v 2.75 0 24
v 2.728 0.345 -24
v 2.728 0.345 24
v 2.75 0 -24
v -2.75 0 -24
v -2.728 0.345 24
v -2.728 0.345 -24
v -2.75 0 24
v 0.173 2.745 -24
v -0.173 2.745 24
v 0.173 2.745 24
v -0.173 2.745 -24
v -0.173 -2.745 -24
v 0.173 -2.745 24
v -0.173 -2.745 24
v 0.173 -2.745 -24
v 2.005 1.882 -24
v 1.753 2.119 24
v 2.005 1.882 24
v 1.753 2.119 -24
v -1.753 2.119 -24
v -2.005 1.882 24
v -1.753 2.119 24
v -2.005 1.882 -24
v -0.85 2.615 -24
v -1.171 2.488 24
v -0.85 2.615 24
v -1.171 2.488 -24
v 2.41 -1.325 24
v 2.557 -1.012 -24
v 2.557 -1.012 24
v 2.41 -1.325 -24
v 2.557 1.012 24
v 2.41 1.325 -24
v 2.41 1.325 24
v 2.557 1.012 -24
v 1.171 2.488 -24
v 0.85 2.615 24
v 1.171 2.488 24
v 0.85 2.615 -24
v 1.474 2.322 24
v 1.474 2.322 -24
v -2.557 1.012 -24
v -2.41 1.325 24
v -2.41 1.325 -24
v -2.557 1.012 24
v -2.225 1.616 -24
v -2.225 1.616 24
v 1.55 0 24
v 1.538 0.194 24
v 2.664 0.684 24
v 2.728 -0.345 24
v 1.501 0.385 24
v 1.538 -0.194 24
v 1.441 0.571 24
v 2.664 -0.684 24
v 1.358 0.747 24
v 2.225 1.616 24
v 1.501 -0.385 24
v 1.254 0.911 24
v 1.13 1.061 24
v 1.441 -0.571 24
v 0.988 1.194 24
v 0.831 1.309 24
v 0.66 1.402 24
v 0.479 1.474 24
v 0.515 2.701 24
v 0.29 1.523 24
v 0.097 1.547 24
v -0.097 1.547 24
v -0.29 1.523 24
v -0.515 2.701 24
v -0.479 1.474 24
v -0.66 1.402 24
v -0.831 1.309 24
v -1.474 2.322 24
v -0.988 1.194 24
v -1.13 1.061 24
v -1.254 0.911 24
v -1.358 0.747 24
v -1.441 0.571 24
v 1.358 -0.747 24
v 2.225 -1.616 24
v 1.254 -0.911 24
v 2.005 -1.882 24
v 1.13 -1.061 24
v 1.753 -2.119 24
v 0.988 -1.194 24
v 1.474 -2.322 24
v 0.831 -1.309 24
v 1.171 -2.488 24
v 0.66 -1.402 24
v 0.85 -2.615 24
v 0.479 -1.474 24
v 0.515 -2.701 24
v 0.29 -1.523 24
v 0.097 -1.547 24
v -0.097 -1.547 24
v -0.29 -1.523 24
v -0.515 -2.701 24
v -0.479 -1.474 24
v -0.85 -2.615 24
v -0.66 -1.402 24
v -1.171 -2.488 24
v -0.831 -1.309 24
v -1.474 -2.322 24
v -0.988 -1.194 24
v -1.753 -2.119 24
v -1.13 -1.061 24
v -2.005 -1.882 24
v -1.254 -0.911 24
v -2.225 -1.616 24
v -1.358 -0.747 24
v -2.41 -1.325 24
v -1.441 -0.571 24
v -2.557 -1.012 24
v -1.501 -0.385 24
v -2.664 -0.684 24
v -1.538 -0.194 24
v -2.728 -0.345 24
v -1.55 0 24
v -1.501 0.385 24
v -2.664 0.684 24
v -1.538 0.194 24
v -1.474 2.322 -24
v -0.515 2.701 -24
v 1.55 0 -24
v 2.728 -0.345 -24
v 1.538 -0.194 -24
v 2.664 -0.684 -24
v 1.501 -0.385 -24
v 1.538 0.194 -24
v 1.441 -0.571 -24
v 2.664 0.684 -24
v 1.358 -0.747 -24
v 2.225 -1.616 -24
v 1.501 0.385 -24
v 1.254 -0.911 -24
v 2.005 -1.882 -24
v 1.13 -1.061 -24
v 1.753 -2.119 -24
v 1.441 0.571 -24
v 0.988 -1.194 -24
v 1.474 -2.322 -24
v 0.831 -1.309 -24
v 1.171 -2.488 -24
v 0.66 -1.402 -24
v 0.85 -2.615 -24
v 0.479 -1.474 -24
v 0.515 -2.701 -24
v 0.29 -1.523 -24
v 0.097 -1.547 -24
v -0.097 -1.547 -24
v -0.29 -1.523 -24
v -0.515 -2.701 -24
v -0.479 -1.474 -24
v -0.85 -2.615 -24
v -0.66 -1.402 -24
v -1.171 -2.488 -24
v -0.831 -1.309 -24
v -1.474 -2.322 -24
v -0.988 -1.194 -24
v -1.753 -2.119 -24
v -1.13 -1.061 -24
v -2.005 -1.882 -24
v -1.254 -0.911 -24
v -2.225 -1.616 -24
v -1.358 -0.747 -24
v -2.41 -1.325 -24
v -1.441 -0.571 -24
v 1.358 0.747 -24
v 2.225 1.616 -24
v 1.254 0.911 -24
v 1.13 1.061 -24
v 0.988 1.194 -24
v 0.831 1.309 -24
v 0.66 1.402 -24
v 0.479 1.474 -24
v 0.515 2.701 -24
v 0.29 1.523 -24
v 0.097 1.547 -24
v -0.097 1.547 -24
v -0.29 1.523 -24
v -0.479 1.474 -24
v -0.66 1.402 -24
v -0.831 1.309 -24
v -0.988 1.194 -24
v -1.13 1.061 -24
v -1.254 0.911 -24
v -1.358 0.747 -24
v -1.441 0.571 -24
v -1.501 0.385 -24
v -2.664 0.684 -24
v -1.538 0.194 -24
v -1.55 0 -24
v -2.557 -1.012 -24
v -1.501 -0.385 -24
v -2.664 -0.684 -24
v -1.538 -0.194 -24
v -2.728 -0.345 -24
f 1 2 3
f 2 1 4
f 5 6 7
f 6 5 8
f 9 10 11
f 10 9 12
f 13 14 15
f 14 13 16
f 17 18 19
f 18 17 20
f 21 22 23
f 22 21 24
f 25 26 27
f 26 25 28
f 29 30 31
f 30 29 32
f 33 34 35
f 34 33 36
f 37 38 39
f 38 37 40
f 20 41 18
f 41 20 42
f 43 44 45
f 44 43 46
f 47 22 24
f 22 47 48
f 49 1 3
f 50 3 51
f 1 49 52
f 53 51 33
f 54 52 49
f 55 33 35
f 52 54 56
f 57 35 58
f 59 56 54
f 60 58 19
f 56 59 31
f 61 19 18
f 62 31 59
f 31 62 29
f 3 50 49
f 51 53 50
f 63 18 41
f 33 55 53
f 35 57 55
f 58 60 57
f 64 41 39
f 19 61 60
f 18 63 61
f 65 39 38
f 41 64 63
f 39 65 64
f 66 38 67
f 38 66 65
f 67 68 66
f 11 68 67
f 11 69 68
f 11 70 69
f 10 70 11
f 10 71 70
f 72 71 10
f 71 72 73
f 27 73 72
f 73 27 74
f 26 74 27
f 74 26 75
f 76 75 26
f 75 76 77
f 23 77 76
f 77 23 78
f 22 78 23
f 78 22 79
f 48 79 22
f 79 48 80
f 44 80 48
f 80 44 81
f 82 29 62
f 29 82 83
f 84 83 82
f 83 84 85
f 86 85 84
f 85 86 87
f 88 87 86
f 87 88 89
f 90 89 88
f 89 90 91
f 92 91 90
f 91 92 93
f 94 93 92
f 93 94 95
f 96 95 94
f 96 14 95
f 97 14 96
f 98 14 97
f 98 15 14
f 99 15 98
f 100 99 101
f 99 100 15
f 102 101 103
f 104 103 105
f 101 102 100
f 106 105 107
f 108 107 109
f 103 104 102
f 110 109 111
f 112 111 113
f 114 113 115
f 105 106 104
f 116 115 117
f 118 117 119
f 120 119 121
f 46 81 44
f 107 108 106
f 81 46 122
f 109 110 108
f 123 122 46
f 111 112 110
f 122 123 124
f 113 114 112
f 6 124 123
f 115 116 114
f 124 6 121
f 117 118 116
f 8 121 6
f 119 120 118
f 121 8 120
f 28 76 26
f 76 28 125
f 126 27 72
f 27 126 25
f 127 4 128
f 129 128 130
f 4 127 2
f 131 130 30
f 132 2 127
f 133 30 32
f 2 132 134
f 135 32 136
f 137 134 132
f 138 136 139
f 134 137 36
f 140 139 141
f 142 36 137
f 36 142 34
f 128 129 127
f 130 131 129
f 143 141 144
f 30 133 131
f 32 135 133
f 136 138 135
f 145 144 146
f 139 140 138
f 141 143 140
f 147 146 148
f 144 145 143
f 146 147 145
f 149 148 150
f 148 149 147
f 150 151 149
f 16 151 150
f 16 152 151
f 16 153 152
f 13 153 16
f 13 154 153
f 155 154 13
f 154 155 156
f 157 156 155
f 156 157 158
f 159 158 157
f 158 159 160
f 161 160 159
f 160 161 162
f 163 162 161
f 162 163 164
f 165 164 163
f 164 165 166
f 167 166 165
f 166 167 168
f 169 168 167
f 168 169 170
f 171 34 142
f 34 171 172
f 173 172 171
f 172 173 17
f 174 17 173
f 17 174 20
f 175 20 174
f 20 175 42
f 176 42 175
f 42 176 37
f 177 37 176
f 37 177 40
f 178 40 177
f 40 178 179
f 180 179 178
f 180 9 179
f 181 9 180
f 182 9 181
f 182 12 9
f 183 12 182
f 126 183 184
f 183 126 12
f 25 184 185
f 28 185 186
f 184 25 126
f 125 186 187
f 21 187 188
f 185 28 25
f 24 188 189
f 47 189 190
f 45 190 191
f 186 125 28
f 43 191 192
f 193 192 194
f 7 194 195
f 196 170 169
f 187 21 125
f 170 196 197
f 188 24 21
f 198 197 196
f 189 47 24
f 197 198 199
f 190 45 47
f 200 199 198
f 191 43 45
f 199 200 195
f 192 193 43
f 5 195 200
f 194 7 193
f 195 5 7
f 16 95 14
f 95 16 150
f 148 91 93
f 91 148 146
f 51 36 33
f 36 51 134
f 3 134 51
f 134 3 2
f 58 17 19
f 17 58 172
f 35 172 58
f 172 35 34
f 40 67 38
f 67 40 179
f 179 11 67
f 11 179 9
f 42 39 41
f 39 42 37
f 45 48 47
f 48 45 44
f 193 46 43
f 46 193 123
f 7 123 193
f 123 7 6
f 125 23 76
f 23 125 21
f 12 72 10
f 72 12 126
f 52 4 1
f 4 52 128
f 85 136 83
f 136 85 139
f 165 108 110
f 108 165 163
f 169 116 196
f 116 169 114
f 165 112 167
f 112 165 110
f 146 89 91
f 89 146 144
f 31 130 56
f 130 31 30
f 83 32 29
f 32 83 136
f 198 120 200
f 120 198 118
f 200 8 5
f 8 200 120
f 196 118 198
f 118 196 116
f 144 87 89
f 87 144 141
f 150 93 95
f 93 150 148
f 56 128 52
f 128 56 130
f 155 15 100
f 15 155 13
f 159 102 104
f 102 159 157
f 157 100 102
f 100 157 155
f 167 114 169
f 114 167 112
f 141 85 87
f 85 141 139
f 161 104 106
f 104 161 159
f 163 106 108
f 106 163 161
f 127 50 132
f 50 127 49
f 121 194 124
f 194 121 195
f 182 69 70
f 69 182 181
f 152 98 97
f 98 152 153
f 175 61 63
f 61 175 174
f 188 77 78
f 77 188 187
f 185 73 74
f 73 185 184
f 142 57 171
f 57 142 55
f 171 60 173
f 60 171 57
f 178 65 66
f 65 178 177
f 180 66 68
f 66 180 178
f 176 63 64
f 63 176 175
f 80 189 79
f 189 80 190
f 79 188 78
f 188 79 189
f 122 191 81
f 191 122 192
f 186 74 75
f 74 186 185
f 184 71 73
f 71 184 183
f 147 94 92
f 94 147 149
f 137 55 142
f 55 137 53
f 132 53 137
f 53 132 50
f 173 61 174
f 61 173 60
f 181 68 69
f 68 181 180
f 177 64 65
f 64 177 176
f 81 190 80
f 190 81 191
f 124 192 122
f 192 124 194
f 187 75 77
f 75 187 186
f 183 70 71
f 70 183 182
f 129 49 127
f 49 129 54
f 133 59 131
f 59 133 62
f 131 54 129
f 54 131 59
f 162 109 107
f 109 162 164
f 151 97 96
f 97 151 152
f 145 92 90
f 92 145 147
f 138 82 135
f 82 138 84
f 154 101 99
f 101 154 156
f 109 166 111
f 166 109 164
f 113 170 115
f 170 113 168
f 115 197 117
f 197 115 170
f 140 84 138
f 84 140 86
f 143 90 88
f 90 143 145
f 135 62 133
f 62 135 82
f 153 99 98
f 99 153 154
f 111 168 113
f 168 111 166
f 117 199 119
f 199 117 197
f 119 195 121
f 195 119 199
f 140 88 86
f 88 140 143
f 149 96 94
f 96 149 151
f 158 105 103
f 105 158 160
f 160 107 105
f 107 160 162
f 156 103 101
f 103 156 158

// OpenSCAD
$fn = 50;


difference() {
	union() {
		translate(v = [0, 0, -24.0000000000]) {
			cylinder(h = 48, r = 2.7500000000);
		}
	}
	union() {
		translate(v = [0, 0, -100.0000000000]) {
			cylinder(h = 200, r = 1.5500000000);
		}
	}
}
